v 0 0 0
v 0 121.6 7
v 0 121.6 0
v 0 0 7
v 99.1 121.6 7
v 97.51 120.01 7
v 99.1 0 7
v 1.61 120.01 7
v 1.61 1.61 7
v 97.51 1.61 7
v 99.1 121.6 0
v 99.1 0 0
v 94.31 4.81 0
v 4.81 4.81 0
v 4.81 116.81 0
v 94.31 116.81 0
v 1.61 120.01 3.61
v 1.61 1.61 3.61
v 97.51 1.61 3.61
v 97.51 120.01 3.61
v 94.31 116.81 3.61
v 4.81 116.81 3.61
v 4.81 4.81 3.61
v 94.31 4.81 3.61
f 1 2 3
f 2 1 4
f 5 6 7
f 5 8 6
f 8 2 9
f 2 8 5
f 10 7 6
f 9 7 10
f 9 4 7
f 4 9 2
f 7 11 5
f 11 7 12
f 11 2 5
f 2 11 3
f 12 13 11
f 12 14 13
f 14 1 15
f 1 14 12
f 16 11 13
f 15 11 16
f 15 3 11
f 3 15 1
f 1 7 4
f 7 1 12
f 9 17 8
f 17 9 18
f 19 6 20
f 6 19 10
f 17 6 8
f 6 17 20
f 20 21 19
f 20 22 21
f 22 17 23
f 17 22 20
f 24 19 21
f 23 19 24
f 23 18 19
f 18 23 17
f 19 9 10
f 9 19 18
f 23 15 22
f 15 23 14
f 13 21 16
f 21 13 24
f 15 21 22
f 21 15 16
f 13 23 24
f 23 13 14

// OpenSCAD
//units are in mm
$fn=20;

// Epsilon value
e = 0.01;

// Wall thickness
wall = .8;

// Outer border width
border = 8;

// mm clearance alongside each button
clearance = 6;

// Button size constants
a_diameter = 19 + clearance;
b_diameter = 12.5 + clearance;
y_length = 17 + clearance;
y_width = 11 + clearance;
x_length = 17 + clearance;
x_width = 11 + clearance;
start_diameter = 8 + clearance;
button_height = 18;

// How many sets of buttons
sets = 4;

difference() {
    // Bounding box
    cube([2*border + a_diameter + b_diameter + x_width + y_width + 7*wall, 2*border + 4*a_diameter + 7*wall, 7]);

    // Bottom indents
    translate([2*wall + e, 2*wall + e, 2 + 2*wall + e])
        cube([2*border + a_diameter + b_diameter + 2*x_width + 3*wall, 2*border + 4*a_diameter + 3*wall, button_height]);

    translate([6*wall + e, 6*wall + e, -e])
        cube([2*border + a_diameter + b_diameter + 2*x_width - 5*wall, 2*border + 4*a_diameter - 5*wall, button_height]);
}
